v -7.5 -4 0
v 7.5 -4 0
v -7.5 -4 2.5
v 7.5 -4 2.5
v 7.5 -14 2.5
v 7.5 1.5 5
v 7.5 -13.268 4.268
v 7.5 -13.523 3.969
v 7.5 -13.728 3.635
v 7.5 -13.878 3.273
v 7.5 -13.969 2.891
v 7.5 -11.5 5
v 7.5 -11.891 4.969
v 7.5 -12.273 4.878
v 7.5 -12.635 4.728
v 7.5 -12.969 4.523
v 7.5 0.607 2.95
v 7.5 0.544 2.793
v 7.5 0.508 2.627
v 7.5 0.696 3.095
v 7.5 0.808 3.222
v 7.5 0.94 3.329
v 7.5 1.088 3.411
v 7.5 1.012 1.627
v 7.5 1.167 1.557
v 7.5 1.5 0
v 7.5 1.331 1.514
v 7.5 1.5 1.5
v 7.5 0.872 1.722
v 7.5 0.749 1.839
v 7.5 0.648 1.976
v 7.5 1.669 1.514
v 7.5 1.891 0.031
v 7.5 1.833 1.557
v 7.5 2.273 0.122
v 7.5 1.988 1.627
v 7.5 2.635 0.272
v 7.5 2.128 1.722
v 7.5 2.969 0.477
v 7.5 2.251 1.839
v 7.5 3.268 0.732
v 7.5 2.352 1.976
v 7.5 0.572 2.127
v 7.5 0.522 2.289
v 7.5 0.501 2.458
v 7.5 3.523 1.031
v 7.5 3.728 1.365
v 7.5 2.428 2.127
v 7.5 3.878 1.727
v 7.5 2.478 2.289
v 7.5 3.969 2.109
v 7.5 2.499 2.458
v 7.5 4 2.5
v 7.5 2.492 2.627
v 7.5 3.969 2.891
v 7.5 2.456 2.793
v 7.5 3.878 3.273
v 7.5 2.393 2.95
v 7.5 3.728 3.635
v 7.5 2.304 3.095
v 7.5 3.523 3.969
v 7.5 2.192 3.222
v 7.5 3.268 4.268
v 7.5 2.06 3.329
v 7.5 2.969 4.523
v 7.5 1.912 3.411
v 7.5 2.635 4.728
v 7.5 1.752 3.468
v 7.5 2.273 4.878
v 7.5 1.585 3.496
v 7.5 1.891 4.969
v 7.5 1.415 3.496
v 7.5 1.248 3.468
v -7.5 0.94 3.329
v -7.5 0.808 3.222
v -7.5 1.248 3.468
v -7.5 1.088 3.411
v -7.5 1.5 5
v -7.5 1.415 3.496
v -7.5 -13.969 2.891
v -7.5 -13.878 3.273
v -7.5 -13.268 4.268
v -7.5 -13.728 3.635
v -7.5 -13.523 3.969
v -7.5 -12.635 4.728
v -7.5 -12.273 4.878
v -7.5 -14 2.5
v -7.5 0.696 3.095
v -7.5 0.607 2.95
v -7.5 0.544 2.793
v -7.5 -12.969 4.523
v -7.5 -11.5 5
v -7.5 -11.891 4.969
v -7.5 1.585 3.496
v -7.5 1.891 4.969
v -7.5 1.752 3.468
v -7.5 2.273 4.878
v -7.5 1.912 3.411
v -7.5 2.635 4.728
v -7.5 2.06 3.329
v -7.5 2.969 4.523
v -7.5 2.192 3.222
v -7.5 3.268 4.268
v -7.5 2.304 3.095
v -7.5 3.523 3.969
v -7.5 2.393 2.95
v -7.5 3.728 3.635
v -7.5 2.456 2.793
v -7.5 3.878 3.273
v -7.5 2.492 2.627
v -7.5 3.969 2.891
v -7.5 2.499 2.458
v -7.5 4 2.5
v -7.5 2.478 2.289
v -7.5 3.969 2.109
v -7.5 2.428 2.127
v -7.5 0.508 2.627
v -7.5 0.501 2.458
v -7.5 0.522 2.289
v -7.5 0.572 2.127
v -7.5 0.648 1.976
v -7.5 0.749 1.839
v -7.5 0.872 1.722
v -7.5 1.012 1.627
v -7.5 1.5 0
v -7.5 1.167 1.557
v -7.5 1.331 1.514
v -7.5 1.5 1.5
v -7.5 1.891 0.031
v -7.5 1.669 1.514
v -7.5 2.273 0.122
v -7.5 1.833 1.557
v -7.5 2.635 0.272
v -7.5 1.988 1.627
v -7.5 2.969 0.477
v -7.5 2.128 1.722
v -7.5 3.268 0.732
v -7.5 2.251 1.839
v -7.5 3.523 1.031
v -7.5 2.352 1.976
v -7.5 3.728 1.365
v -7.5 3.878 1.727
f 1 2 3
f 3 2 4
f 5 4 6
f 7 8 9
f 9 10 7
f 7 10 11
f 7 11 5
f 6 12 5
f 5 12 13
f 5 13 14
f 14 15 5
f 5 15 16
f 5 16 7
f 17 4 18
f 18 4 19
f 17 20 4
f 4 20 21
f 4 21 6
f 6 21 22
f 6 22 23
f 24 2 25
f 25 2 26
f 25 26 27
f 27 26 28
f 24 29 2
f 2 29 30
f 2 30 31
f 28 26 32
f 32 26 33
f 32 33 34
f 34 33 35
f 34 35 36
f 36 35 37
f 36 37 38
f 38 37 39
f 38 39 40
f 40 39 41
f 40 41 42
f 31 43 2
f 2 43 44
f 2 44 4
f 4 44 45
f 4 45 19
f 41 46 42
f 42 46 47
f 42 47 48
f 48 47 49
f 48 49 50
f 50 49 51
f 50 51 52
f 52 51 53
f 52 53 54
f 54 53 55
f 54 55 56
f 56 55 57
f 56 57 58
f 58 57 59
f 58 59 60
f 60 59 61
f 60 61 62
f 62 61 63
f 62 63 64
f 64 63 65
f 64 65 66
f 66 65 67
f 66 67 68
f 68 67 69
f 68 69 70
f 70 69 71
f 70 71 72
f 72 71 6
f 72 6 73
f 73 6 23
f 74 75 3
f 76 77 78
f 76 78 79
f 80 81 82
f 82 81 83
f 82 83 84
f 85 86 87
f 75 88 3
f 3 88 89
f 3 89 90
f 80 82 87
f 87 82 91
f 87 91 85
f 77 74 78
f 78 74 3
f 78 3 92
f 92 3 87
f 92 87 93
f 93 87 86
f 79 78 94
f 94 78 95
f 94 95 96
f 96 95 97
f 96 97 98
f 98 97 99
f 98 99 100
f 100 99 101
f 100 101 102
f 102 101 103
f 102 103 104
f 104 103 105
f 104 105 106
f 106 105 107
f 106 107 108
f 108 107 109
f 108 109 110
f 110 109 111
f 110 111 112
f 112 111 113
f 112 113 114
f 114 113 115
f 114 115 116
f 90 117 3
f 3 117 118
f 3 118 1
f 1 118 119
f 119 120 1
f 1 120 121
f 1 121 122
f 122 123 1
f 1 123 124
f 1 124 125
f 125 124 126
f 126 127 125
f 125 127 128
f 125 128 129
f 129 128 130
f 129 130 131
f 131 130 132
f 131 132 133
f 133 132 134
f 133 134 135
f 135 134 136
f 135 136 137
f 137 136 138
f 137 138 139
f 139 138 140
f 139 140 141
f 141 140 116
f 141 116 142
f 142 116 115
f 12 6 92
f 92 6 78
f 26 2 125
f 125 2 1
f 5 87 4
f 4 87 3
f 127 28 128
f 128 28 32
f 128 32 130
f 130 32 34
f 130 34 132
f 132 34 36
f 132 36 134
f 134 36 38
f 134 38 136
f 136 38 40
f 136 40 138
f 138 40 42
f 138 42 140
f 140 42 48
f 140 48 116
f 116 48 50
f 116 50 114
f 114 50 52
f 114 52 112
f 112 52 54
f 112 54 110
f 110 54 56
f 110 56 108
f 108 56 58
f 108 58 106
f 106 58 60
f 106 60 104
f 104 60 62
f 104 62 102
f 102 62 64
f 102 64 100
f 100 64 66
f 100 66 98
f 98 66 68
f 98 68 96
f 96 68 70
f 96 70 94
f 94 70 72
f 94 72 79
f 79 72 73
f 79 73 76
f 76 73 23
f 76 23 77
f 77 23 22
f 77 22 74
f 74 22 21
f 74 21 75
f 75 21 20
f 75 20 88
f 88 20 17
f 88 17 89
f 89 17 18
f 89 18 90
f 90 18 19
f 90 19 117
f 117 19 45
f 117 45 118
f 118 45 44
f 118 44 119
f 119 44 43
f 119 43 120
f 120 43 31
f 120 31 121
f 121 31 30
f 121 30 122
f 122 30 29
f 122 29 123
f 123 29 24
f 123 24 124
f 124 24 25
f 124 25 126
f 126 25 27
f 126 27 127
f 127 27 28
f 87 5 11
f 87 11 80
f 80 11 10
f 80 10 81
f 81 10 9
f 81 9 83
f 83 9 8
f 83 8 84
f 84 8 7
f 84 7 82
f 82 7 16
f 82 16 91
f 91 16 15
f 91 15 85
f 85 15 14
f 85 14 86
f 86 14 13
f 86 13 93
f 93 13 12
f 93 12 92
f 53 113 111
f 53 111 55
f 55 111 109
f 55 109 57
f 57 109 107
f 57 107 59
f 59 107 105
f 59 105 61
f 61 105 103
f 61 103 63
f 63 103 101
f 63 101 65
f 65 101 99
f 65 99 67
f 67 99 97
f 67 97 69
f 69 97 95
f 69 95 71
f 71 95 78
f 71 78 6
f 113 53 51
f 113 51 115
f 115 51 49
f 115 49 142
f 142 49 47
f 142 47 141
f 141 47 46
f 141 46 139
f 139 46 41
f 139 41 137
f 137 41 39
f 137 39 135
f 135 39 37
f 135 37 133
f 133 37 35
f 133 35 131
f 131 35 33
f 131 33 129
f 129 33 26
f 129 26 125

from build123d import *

# Parameters (mm, degrees)
SKETCH1_W           = 15
SKETCH1_H           = 8
BOSS_EXTRUDE1_DEPTH = 5
SKETCH2_W           = 15
SKETCH2_H           = 2.5
BOSS_EXTRUDE2_DEPTH = 10
SKETCH4_R           = 1
CUT_EXTRUDE1_DEPTH  = 22.118712082
FILLET1_R           = 2.5


with BuildPart() as part:
    # Sketch1 → Boss-Extrude1 (new body)
    with BuildSketch(Plane.XY):
        Rectangle(SKETCH1_W, SKETCH1_H)
    extrude(amount=BOSS_EXTRUDE1_DEPTH)

    # Sketch2 → Boss-Extrude2 (add)
    with BuildSketch(Plane.XZ.offset(4)):
        with Locations((0, 3.75)):
            Rectangle(SKETCH2_W, SKETCH2_H)
    extrude(amount=BOSS_EXTRUDE2_DEPTH)

    # Sketch4 → Cut-Extrude1 (cut, through all)
    with BuildSketch(Plane(origin=(7.5, 0, 0), x_dir=(0, 0, -1), z_dir=(1, 0, 0))):
        with Locations((-2.5, 1.5)):
            Circle(SKETCH4_R)
    extrude(amount=-CUT_EXTRUDE1_DEPTH, mode=Mode.SUBTRACT)

    # Fillet1
    fillet1_edges = [part.edges().sort_by_distance(p)[0] for p in [
        (0, -14, 5),
        (0, 4, 0),
        (0, 4, 5),
    ]]
    fillet(fillet1_edges, radius=FILLET1_R - 0.0001)  # a hair under: the kernel refuses the full size


solid = part.part
